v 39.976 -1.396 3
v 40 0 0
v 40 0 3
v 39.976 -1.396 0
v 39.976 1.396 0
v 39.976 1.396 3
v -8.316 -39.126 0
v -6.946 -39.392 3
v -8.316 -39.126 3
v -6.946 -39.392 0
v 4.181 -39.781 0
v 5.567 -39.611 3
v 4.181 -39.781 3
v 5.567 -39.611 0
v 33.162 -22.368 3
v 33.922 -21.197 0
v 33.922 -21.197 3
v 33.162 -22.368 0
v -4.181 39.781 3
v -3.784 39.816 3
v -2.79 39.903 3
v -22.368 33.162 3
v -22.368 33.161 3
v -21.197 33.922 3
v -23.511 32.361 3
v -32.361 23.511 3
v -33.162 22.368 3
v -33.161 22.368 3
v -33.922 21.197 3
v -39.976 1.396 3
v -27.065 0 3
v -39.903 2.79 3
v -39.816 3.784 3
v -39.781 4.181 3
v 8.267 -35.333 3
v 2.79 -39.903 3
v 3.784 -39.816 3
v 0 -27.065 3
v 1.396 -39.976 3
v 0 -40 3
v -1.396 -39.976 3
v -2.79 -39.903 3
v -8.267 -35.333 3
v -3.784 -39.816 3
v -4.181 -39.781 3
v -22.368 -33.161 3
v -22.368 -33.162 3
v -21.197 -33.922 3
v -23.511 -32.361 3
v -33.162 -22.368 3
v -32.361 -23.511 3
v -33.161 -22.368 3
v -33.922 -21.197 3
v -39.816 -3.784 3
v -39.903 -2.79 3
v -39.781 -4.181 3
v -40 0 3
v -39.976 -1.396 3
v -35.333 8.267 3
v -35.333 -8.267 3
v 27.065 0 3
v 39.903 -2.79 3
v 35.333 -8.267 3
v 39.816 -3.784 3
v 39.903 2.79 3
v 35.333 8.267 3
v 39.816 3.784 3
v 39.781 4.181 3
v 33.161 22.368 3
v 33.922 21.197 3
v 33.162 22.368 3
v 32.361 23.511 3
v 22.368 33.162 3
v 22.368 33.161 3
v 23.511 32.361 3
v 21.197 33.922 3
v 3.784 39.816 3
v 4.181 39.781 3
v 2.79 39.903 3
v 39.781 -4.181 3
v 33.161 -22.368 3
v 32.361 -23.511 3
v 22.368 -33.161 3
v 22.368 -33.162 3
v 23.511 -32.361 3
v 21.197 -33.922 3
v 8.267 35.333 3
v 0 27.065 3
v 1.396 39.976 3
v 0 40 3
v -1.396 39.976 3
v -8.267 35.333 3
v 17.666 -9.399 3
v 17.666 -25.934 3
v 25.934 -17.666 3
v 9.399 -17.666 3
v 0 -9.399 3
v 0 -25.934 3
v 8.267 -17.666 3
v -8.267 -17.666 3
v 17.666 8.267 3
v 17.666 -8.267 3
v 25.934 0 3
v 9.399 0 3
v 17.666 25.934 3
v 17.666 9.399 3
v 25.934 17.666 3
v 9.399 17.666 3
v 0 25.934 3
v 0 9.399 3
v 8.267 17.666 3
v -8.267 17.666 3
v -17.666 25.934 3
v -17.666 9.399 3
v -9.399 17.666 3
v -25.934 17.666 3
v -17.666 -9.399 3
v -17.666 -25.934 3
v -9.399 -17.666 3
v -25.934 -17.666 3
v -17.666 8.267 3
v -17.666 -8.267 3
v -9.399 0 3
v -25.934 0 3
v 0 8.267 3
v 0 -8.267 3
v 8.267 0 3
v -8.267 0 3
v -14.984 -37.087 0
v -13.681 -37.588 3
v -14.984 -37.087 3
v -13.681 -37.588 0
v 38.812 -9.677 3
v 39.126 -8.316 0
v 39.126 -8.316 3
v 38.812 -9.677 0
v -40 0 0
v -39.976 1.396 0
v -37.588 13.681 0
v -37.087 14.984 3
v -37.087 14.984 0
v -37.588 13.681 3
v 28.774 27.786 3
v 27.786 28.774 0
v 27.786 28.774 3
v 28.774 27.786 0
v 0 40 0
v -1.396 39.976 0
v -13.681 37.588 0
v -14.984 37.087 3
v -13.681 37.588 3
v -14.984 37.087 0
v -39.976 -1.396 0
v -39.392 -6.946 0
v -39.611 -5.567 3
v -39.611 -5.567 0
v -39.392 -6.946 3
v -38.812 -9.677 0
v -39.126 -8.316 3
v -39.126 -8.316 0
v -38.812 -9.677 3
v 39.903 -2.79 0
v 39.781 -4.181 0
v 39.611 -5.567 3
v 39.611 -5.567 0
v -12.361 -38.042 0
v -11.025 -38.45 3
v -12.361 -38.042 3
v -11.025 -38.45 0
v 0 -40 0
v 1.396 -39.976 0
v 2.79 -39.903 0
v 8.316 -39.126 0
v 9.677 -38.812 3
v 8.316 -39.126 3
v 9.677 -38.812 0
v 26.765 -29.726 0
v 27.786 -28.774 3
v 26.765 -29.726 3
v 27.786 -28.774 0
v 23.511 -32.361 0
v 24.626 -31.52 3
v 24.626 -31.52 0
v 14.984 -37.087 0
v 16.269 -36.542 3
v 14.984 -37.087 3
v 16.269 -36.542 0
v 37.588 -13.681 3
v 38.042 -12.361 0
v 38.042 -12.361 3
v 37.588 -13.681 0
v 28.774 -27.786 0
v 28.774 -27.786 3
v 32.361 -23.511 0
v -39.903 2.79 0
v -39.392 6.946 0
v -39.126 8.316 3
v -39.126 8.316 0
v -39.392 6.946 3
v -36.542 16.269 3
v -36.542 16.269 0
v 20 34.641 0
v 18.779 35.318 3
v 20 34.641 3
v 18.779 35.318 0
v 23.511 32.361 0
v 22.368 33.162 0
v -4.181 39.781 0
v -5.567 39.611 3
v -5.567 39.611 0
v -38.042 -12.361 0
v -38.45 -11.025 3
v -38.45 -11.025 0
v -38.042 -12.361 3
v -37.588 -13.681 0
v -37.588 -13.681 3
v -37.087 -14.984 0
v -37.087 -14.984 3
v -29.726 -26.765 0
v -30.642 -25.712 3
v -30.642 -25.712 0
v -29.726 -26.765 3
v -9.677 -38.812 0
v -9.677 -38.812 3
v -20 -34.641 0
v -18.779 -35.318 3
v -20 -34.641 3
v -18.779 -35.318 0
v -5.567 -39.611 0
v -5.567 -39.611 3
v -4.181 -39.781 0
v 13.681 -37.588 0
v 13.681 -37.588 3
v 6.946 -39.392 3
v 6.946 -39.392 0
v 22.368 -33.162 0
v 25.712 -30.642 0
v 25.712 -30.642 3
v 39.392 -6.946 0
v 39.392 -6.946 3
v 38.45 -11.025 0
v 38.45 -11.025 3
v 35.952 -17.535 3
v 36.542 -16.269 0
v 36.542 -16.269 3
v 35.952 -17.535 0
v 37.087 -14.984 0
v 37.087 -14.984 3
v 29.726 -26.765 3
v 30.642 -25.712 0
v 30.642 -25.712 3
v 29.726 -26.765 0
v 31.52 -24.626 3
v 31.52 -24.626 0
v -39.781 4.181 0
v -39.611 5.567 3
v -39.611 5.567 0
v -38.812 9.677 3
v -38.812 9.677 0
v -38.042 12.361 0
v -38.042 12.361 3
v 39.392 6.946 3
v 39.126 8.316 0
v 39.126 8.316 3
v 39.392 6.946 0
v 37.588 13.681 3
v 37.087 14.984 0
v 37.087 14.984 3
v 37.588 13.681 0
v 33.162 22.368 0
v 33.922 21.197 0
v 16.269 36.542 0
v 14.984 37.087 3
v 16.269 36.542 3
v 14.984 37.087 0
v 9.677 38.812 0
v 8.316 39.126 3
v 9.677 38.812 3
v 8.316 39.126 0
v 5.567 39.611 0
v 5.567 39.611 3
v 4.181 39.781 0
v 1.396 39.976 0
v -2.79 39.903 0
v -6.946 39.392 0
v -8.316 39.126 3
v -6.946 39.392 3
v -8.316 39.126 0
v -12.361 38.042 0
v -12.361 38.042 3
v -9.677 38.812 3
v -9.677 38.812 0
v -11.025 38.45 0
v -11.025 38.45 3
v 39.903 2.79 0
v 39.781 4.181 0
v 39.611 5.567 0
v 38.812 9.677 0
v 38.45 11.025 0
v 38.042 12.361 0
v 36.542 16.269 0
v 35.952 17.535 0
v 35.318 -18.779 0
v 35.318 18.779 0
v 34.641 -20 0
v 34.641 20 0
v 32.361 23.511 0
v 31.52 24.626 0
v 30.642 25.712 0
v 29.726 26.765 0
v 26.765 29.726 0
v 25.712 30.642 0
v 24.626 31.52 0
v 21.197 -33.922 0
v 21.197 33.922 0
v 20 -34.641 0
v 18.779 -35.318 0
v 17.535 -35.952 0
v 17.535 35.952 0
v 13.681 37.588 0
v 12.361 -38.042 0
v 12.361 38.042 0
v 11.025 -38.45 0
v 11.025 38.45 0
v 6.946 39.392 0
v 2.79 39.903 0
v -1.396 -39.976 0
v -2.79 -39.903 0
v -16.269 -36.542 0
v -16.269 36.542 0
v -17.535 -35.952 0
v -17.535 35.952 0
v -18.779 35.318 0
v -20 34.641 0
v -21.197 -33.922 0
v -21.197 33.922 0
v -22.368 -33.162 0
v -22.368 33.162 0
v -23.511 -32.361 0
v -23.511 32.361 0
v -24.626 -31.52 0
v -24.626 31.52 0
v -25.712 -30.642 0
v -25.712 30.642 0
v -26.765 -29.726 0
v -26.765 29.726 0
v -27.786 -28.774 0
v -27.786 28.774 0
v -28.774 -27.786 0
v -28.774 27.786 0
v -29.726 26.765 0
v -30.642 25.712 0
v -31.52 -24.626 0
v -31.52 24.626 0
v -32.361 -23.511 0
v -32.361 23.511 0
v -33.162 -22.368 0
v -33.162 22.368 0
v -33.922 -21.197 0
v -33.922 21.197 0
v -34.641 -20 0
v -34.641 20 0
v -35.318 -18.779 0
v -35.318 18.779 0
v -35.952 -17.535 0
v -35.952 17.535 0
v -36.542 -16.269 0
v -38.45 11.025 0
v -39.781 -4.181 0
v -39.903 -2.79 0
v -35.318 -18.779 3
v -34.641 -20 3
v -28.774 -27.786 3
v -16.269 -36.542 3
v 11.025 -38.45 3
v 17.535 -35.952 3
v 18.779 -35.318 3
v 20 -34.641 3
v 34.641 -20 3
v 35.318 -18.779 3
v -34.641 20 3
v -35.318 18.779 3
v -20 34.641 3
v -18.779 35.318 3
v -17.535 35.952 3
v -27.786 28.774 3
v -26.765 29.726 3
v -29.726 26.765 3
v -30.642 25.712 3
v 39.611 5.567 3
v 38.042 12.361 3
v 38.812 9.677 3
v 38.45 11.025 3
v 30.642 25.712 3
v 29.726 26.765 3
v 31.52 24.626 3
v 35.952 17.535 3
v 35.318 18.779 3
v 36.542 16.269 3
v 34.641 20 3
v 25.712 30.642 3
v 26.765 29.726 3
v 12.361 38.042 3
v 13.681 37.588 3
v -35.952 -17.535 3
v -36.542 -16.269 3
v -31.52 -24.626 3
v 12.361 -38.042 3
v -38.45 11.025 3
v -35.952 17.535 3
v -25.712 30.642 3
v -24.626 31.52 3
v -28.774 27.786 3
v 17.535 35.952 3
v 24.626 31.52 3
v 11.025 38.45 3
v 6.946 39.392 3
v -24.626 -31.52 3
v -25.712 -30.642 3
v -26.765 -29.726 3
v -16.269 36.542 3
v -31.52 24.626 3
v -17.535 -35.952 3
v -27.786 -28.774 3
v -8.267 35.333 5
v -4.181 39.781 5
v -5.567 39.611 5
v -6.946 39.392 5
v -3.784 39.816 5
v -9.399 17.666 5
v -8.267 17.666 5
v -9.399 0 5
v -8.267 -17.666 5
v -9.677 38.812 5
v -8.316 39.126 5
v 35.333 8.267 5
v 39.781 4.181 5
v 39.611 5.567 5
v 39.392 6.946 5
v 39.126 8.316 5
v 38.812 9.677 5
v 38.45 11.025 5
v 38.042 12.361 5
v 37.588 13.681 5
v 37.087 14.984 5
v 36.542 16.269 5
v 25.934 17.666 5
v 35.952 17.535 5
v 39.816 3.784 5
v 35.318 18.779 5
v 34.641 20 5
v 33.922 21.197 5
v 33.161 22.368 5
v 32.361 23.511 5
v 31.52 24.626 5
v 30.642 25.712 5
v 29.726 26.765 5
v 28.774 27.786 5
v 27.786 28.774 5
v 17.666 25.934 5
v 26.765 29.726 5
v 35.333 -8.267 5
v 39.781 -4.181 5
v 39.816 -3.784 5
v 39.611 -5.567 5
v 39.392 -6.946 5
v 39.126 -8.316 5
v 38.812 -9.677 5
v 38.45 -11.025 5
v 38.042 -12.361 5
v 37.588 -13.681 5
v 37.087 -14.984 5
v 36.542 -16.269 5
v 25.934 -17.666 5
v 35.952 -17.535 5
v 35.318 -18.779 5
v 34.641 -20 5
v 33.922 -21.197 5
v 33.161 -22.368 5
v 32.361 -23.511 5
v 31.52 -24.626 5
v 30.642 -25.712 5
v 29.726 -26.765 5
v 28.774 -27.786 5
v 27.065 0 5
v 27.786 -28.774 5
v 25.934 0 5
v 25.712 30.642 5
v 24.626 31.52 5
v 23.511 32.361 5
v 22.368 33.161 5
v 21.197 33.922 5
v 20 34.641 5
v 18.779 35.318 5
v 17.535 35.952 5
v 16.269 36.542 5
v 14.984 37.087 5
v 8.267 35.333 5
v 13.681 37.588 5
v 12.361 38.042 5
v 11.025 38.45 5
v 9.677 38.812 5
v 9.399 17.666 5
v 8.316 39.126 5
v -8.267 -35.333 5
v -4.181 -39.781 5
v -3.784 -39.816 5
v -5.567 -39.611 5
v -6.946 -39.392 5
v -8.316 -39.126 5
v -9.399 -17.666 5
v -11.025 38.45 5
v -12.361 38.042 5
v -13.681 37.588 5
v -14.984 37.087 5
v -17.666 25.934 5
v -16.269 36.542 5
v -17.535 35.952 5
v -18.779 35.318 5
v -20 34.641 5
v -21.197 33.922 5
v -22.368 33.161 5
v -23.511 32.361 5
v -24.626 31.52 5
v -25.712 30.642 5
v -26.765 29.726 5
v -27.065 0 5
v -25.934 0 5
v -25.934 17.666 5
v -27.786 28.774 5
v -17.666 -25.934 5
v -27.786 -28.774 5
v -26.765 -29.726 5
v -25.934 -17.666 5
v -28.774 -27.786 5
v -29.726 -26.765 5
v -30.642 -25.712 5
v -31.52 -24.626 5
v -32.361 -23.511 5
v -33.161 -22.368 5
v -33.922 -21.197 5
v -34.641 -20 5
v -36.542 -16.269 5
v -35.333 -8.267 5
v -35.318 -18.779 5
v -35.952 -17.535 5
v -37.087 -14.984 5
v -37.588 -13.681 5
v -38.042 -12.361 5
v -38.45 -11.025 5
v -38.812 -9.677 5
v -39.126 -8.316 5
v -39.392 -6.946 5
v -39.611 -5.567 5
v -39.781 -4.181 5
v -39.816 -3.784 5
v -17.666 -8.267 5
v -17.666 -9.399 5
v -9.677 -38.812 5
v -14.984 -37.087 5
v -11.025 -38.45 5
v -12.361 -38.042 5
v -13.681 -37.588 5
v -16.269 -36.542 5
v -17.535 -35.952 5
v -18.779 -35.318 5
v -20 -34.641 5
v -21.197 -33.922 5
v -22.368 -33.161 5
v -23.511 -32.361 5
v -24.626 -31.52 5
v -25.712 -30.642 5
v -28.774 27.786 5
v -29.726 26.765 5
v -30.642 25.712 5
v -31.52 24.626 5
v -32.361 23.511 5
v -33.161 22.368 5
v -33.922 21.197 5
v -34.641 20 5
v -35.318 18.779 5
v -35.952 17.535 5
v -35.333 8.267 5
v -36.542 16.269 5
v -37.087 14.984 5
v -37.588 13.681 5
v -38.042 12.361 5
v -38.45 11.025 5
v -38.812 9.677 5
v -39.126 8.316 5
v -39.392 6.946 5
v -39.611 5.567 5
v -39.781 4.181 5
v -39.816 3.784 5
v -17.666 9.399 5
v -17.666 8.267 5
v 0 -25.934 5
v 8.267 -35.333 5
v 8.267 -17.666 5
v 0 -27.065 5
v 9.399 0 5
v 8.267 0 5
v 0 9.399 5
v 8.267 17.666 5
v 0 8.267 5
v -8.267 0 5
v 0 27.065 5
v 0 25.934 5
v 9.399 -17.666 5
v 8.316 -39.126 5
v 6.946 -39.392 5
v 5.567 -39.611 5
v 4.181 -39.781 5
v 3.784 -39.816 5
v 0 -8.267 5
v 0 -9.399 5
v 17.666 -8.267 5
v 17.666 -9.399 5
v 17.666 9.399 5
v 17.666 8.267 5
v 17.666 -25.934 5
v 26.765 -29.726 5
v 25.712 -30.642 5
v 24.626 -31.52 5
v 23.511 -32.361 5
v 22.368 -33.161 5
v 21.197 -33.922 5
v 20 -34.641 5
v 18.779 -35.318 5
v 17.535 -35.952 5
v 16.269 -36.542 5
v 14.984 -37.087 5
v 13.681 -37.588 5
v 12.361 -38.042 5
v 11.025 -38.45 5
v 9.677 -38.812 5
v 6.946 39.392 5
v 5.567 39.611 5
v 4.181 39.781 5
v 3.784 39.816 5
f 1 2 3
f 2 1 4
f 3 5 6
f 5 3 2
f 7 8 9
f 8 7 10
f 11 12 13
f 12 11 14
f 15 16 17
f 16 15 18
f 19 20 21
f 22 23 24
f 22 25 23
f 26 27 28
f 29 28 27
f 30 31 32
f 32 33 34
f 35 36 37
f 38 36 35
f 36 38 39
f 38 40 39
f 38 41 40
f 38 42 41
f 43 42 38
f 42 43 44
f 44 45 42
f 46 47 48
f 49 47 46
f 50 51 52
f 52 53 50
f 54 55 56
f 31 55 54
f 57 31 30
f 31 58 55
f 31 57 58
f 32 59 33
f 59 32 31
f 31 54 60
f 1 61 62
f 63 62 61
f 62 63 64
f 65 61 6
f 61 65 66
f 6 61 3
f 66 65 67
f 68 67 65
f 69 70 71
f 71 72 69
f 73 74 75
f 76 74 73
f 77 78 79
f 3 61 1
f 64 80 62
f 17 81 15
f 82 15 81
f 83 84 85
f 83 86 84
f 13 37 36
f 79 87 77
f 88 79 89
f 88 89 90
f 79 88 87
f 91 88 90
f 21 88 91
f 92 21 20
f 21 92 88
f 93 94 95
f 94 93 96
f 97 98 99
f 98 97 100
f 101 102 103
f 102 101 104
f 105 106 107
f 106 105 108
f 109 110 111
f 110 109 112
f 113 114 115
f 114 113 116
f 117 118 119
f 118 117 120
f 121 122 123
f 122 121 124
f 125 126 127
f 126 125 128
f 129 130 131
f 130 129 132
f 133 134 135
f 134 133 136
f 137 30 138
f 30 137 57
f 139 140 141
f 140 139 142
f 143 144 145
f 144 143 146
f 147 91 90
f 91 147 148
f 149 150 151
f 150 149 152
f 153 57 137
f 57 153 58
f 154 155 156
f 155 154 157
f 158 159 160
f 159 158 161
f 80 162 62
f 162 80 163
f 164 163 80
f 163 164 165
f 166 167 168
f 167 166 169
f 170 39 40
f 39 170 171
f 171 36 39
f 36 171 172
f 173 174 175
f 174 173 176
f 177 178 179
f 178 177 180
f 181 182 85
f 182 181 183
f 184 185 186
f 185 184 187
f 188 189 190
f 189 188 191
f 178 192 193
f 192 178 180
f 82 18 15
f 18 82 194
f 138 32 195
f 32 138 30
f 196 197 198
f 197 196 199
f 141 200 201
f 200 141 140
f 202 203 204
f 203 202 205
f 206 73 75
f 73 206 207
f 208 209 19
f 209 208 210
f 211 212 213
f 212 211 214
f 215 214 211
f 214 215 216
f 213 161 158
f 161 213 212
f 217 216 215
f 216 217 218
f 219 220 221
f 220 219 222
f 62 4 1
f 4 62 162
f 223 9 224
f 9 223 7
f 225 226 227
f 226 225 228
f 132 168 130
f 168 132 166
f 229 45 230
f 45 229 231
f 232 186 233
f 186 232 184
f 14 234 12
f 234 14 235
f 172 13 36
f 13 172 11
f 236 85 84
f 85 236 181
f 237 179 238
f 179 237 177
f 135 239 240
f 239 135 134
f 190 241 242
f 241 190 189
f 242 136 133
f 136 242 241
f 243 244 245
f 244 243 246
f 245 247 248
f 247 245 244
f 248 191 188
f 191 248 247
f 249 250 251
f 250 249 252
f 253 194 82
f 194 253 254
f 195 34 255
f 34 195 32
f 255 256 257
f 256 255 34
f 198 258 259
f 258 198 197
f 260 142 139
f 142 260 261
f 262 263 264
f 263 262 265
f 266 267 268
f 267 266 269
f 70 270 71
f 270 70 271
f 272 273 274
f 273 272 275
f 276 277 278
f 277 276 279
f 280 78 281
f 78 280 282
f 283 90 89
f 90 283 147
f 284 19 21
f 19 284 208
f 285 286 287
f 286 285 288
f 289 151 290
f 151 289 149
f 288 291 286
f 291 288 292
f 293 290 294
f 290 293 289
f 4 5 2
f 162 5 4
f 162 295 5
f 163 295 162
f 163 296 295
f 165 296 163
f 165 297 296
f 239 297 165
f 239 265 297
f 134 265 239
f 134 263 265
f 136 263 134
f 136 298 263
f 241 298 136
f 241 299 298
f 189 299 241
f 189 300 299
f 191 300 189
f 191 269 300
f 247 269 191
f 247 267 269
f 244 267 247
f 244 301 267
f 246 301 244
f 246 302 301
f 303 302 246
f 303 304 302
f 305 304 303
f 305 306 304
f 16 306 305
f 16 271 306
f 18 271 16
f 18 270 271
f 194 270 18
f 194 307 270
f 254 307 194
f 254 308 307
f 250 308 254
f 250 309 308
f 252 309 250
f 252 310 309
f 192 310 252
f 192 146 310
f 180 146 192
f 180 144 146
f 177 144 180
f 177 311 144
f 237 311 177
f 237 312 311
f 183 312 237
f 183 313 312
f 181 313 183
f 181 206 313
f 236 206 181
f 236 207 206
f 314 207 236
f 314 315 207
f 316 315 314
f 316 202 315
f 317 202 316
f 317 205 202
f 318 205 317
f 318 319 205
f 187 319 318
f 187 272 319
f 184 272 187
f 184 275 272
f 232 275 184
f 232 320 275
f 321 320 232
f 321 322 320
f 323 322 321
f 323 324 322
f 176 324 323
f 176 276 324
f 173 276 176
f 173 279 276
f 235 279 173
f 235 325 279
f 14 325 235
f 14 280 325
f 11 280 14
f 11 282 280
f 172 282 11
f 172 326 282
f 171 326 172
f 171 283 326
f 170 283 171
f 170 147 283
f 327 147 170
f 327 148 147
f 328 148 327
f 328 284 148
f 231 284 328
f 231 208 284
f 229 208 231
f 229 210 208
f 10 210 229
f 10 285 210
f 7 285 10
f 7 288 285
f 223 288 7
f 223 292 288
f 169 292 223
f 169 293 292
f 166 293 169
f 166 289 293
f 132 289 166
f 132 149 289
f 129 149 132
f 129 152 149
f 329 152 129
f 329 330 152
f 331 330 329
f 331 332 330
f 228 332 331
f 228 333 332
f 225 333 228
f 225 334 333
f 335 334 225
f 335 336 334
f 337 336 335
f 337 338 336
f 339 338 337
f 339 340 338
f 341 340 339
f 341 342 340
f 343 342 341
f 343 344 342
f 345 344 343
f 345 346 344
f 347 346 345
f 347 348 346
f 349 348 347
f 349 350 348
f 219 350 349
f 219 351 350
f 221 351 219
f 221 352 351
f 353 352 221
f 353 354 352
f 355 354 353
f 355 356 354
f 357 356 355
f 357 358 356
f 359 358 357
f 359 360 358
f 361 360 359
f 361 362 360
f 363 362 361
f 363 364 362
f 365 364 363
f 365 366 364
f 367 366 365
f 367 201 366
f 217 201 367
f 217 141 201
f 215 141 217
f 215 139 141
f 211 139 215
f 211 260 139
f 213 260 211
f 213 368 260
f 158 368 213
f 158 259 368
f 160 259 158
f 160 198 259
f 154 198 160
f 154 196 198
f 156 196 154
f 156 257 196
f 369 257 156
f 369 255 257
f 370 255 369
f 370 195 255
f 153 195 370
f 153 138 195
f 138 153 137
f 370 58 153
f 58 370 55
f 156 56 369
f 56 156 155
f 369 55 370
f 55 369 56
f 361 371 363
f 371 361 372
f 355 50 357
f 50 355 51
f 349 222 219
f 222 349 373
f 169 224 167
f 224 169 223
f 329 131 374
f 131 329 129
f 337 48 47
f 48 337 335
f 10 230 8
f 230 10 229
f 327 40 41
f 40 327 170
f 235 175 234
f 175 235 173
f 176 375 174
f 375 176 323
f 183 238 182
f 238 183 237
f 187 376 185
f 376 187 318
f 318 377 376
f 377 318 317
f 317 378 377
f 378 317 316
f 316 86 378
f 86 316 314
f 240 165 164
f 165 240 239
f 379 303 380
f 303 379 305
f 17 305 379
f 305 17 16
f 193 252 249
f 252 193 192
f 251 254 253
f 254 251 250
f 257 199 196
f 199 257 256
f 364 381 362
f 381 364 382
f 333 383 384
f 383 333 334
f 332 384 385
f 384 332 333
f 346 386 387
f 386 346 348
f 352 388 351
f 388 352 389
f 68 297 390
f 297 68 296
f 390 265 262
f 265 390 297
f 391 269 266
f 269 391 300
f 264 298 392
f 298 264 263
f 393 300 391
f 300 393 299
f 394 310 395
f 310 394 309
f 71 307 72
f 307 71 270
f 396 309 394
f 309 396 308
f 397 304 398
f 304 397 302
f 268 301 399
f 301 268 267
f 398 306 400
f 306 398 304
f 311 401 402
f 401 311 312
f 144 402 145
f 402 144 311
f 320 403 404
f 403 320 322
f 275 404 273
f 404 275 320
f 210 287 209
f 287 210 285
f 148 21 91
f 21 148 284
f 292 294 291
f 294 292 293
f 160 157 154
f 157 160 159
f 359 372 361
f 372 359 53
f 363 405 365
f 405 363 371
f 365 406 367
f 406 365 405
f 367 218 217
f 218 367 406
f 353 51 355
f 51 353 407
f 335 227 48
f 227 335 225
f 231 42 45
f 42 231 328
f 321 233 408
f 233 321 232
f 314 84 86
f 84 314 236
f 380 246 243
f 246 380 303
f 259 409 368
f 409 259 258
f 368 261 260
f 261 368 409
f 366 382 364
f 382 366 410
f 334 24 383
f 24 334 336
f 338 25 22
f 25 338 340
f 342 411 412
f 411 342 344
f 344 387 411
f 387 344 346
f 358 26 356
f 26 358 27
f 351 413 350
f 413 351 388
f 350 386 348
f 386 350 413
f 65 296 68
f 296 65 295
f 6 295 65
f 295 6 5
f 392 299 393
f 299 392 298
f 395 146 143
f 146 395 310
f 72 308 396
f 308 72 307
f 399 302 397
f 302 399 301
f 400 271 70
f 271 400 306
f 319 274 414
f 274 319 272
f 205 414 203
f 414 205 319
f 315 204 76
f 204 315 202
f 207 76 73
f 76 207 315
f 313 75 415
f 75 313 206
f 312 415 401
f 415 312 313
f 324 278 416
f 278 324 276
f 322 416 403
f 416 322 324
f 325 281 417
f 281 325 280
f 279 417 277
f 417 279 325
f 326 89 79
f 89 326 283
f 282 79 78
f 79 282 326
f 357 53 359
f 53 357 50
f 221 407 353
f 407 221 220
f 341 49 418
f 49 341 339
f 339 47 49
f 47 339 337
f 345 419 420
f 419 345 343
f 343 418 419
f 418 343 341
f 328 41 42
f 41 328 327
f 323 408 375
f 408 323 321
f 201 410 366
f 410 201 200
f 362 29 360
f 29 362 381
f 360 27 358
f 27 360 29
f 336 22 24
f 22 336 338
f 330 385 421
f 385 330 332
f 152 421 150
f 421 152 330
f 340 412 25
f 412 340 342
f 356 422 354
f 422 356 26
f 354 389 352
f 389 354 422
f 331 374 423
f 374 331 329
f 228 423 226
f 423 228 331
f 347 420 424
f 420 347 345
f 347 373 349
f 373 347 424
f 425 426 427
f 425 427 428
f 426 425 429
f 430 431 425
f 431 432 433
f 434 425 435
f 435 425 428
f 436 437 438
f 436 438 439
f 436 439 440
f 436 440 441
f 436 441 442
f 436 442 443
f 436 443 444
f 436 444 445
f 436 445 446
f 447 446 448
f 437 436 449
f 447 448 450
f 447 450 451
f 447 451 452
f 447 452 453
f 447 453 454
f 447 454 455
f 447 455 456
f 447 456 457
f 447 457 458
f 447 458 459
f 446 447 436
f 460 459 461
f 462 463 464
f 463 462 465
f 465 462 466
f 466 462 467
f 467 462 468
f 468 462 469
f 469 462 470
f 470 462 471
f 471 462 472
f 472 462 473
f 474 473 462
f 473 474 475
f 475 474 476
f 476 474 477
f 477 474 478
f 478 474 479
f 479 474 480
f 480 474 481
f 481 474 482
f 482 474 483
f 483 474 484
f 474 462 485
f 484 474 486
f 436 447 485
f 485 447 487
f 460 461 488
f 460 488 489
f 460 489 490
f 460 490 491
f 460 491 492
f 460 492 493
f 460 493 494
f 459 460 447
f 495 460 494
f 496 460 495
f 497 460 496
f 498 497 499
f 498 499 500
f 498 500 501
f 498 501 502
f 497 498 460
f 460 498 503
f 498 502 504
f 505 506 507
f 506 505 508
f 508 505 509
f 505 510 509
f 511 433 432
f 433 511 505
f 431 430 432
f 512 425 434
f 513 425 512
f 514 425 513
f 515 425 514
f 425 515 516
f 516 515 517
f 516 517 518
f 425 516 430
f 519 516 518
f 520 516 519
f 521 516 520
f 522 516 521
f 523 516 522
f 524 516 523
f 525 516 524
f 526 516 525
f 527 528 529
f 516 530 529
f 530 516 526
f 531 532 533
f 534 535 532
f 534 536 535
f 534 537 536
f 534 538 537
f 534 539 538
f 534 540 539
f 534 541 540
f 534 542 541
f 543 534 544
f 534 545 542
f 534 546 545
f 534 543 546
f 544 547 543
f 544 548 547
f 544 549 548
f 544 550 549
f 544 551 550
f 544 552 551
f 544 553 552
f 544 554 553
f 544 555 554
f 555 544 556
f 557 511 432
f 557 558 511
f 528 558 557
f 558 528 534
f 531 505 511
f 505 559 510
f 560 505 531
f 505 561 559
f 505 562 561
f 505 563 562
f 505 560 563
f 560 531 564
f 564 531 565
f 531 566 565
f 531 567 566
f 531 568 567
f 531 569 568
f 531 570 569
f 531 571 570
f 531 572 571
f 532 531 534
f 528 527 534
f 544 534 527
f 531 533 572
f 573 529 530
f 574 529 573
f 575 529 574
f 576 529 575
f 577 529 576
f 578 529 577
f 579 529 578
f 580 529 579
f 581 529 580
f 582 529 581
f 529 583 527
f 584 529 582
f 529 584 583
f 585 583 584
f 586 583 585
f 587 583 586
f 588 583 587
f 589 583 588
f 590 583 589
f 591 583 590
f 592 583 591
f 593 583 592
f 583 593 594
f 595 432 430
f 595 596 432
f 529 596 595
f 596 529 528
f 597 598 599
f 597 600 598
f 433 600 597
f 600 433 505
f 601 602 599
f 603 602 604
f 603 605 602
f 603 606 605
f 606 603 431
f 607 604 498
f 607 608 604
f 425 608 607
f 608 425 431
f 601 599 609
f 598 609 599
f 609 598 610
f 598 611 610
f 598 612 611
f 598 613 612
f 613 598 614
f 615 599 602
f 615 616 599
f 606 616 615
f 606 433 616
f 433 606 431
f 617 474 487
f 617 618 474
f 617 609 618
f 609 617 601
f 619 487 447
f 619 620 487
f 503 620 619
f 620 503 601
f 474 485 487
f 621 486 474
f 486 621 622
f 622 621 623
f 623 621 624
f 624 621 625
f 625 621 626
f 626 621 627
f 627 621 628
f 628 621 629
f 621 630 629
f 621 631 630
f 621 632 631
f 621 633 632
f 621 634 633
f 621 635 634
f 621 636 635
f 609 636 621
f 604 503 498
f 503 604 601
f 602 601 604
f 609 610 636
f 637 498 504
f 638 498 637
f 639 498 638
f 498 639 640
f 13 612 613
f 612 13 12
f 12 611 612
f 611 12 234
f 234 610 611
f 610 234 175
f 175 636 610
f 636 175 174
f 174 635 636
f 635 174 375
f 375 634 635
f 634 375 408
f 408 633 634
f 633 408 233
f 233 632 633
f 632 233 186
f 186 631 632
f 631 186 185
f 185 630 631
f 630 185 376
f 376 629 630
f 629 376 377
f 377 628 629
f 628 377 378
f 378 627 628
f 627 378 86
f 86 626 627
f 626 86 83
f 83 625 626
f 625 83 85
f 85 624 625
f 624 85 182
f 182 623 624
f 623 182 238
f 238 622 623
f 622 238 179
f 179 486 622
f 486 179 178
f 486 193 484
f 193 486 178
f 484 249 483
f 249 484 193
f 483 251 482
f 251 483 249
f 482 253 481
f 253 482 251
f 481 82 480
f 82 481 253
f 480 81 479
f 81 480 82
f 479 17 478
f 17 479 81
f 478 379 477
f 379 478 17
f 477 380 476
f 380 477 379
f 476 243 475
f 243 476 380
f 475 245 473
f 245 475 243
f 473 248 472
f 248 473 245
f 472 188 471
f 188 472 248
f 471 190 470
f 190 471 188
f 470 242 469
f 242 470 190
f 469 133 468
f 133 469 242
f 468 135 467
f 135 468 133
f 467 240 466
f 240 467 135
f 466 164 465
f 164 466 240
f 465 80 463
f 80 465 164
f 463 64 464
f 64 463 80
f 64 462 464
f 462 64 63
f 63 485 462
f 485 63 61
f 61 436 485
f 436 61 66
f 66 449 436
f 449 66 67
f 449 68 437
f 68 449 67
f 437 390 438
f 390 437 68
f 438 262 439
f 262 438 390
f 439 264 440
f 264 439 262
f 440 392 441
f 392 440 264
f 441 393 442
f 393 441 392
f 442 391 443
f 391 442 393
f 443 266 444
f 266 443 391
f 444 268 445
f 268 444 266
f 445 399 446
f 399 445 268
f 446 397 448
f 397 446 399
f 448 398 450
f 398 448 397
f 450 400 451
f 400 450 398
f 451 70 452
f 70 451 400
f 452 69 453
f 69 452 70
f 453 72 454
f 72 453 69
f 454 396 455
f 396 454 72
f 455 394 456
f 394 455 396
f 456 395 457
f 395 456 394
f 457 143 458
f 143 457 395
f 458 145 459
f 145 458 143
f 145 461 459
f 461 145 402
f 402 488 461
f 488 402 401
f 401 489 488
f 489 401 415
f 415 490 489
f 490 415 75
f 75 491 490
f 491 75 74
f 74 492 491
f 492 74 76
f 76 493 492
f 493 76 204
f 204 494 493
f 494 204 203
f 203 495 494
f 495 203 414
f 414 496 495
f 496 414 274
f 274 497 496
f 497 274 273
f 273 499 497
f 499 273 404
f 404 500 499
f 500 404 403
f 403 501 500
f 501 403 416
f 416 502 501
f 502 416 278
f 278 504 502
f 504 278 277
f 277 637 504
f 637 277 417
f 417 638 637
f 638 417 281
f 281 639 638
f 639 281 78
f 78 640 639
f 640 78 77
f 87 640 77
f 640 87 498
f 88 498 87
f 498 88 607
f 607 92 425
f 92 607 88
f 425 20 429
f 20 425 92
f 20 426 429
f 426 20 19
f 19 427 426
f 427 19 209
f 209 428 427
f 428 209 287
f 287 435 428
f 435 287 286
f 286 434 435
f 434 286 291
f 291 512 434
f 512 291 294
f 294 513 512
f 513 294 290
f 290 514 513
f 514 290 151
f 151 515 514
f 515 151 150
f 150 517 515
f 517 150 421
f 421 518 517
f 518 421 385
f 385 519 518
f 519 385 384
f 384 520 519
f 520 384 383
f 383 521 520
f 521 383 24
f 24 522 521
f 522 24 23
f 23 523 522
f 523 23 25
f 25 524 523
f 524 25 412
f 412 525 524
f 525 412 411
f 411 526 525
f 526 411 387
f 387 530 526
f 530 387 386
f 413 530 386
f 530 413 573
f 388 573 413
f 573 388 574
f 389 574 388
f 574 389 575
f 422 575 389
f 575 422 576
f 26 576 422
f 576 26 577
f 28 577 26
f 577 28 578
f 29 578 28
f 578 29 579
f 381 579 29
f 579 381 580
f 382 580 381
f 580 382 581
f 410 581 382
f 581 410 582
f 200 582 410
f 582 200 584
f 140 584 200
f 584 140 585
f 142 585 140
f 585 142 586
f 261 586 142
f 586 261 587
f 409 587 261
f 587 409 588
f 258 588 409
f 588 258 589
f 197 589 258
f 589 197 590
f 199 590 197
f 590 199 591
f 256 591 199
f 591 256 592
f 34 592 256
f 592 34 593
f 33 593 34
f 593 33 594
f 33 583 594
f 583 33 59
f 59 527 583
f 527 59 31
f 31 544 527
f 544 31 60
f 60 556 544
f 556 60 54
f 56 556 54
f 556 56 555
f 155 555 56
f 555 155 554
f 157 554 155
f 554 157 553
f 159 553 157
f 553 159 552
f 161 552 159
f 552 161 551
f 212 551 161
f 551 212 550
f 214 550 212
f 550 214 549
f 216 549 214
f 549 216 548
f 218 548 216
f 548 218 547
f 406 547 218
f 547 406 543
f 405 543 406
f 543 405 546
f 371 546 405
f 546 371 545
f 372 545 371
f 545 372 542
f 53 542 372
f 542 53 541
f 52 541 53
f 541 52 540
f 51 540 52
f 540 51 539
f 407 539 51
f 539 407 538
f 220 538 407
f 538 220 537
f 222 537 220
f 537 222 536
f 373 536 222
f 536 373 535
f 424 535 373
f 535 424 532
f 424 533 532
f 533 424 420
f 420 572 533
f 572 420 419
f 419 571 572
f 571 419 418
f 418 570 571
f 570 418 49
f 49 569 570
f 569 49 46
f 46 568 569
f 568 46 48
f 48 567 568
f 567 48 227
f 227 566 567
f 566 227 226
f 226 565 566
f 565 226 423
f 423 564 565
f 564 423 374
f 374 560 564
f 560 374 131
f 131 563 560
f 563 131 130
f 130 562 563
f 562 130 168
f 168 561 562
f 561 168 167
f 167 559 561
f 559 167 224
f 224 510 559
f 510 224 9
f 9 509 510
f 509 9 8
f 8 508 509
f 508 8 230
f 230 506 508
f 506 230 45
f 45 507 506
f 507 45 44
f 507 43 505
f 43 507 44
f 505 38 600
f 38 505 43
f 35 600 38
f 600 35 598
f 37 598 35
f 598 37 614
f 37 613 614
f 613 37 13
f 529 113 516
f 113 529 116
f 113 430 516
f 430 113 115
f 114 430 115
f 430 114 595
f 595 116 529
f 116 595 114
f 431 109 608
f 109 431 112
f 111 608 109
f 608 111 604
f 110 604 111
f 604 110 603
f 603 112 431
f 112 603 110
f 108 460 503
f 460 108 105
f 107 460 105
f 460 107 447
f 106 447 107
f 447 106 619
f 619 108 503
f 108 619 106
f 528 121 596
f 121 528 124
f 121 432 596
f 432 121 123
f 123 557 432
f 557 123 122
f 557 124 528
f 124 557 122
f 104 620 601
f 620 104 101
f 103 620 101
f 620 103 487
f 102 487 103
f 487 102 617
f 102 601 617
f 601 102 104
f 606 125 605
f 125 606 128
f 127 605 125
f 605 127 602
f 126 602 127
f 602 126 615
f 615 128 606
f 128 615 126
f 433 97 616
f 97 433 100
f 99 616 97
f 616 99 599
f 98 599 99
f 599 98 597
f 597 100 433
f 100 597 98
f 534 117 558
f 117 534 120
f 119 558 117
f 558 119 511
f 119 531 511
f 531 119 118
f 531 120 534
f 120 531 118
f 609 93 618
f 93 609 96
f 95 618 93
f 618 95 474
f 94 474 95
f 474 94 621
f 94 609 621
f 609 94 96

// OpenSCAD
// file: bellum_text_traced.scad
// bellum_text_traced.scad
// "Bellum" lettering traced from the source logo image with
// OpenCV (4x cubic upscale, threshold, morphological cleanup,
// approxPolyDP 2px). Coordinates are centered, Y-up, and
// normalized to 100 units of total width.
// Regenerate with scratchpad/trace2_emit.py if retuning.

module bellum_traced_2d() {
    polygon(points=[[-49.89,10.25],[-49.89,9.49],[-49.35,8.94],[-46.95,8.83],[-45.64,7.74],[-45.09,6.11],[-45.42,-2.07],[-45.09,-10.25],[-46.07,-11.56],[-49.24,-11.89],[-49.56,-12.32],[-49.45,-13.30],[-30.59,-13.41],[-28.08,-12.87],[-26.23,-11.45],[-25.03,-9.27],[-24.48,-6.65],[-25.03,-4.80],[-26.01,-3.27],[-29.28,-0.55],[-27.10,2.84],[-27.32,5.78],[-27.97,6.98],[-29.28,8.29],[-31.13,9.38],[-35.50,10.36],[-40.62,-1.42],[-39.97,-0.98],[-35.06,-0.98],[-33.10,-1.31],[-31.68,-1.96],[-30.04,-3.60],[-29.06,-5.89],[-29.06,-7.96],[-29.83,-9.49],[-31.35,-10.91],[-33.86,-11.67],[-37.35,-11.89],[-39.97,-11.34],[-40.95,-10.25],[-41.38,8.40],[-40.84,8.83],[-38.99,9.05],[-35.93,8.83],[-33.32,7.85],[-31.57,6.32],[-30.92,4.91],[-31.24,2.40],[-32.55,0.98],[-33.86,0.33],[-39.31,0.00],[-40.29,0.44],[-40.95,1.53],[-41.49,6.22]], paths=[[0, 1, 2, 3, 4, 5, 6, 7, 8, 9, 10, 11, 12, 13, 14, 15, 16, 17, 18, 19, 20, 21, 22, 23, 24, 25], [26, 27, 28, 29, 30, 31, 32, 33, 34, 35, 36, 37, 38, 39], [40, 41, 42, 43, 44, 45, 46, 47, 48, 49, 50, 51, 52, 53]]);
    polygon(points=[[-21.76,1.53],[-23.28,-0.44],[-23.72,-1.85],[-23.72,-3.82],[-22.96,-6.22],[-21.54,-7.63],[-19.79,-8.40],[-15.43,-8.40],[-13.69,-8.07],[-12.05,-7.09],[-10.09,-5.13],[-10.31,-4.69],[-11.07,-4.58],[-13.36,-6.43],[-15.76,-7.20],[-18.27,-6.54],[-20.34,-4.47],[-20.77,-3.49],[-20.67,-2.62],[-20.01,-2.18],[-18.48,-2.07],[-12.70,-2.40],[-12.05,-1.96],[-12.27,0.00],[-13.90,1.96],[-16.30,2.94],[-19.68,2.62],[-20.34,-0.22],[-19.47,0.98],[-17.61,1.96],[-15.98,1.53],[-14.78,0.00],[-14.99,-0.76],[-15.98,-0.98],[-20.01,-0.98]], paths=[[0, 1, 2, 3, 4, 5, 6, 7, 8, 9, 10, 11, 12, 13, 14, 15, 16, 17, 18, 19, 20, 21, 22, 23, 24, 25, 26], [27, 28, 29, 30, 31, 32, 33, 34]]);
    polygon(points=[[-3.87,12.98],[-4.85,12.87],[-6.60,12.00],[-8.02,10.80],[-7.80,10.25],[-6.49,9.60],[-6.16,8.62],[-6.16,-3.93],[-6.49,-6.54],[-7.36,-7.20],[-8.67,-7.31],[-9.00,-7.74],[-8.89,-8.29],[-8.23,-8.62],[-1.04,-8.40],[-1.04,-7.85],[-1.47,-7.42],[-3.44,-6.98],[-3.98,-5.78],[-3.76,11.01],[-3.44,11.67],[-3.44,12.54]], paths=[[0, 1, 2, 3, 4, 5, 6, 7, 8, 9, 10, 11, 12, 13, 14, 15, 16, 17, 18, 19, 20, 21]]);
    polygon(points=[[5.07,13.52],[4.31,13.41],[0.82,11.56],[-0.16,10.47],[0.27,9.71],[1.47,10.03],[2.13,9.49],[2.34,7.85],[2.24,-5.45],[1.58,-7.20],[-0.05,-7.63],[0.05,-8.18],[0.93,-8.51],[7.25,-8.51],[7.58,-8.18],[6.92,-7.20],[6.05,-7.20],[5.07,-6.32],[5.18,-1.85],[4.85,-0.65],[5.18,0.33],[5.18,11.34],[5.73,12.54],[5.62,13.20]], paths=[[0, 1, 2, 3, 4, 5, 6, 7, 8, 9, 10, 11, 12, 13, 14, 15, 16, 17, 18, 19, 20, 21, 22, 23]]);
    polygon(points=[[9.00,1.64],[9.11,0.87],[10.09,0.76],[10.74,0.00],[11.07,-0.98],[11.07,-5.56],[11.61,-7.31],[12.60,-8.18],[13.36,-8.51],[16.19,-8.51],[18.92,-7.31],[19.47,-7.31],[20.12,-8.18],[20.67,-8.29],[23.83,-8.18],[24.48,-7.74],[24.37,-6.87],[23.17,-6.87],[22.52,-6.32],[22.19,-0.33],[22.63,0.55],[23.61,1.31],[23.72,2.07],[17.83,2.18],[17.72,1.64],[19.25,0.98],[19.68,0.22],[19.68,-4.58],[18.38,-6.32],[16.74,-6.87],[15.65,-6.87],[14.67,-6.43],[13.69,-4.80],[13.69,0.22],[14.67,2.07],[10.41,2.29]], paths=[[0, 1, 2, 3, 4, 5, 6, 7, 8, 9, 10, 11, 12, 13, 14, 15, 16, 17, 18, 19, 20, 21, 22, 23, 24, 25, 26, 27, 28, 29, 30, 31, 32, 33, 34, 35]]);
    polygon(points=[[27.21,1.85],[27.21,1.20],[28.95,0.11],[29.06,-6.22],[28.52,-7.20],[26.55,-7.52],[26.44,-8.29],[26.77,-8.62],[30.59,-8.83],[32.99,-8.62],[33.53,-8.29],[33.10,-7.31],[32.12,-7.20],[31.57,-6.65],[31.57,-0.87],[32.22,0.00],[34.41,0.98],[36.04,0.76],[36.70,0.11],[37.24,-1.53],[37.24,-6.00],[36.91,-6.76],[35.50,-7.74],[35.61,-8.18],[36.48,-8.51],[40.84,-8.51],[41.60,-8.07],[41.60,-7.74],[40.51,-7.20],[39.97,-6.43],[39.97,-1.96],[40.73,-0.55],[42.91,0.98],[44.66,0.65],[45.53,-0.33],[45.75,-1.09],[45.53,-6.43],[44.98,-7.20],[44.00,-7.52],[43.78,-8.07],[44.66,-8.51],[49.45,-8.62],[50.00,-8.18],[49.56,-7.42],[48.80,-7.42],[48.15,-6.76],[48.36,0.00],[47.93,1.31],[46.51,2.62],[43.68,2.94],[41.82,2.07],[40.29,0.87],[39.86,0.87],[38.66,2.51],[37.35,2.94],[34.95,2.51],[32.22,1.20],[31.46,1.42],[31.79,2.62],[31.24,3.05],[29.28,2.94]], paths=[[0, 1, 2, 3, 4, 5, 6, 7, 8, 9, 10, 11, 12, 13, 14, 15, 16, 17, 18, 19, 20, 21, 22, 23, 24, 25, 26, 27, 28, 29, 30, 31, 32, 33, 34, 35, 36, 37, 38, 39, 40, 41, 42, 43, 44, 45, 46, 47, 48, 49, 50, 51, 52, 53, 54, 55, 56, 57, 58, 59, 60]]);
}

bellum_traced_2d();
// file: bellum_badge_004.scad
// bellum_badge_004.scad
// v004: corrected again after a closer look at the photo. The design is a
//   WHITE circle with a 5x5 checkerboard rotated 45 degrees on top: black
//   corner tiles, black center tile, thin white grout, and the diamond's
//   four corners slightly clipped by the circle rim. (v003's full-circle
//   checkerboard misread glare on the button photo as extra tiles.)
//
// Printable parts (print in the named color, glue together):
//   white_body()         white - 3 mm disc + 2 mm top layer with square
//                        pockets; the top layer IS the white circle, white
//                        tiles, and grout, all one solid piece
//   black_tiles()        black - 13 drop-in tiles (4 rim-clipped), flush
//                        with the white top when seated
//   text_plate_black()   black - outline plate behind the letters
//   text_letters_white() white - "Bellum" letters (6 pieces), glue on plate
//
// Everything scales from badge_d; thicknesses and clearance are absolute.
// v002/v003 history: lettering traced from the photo (bellum_text_traced).

$fa = 2;
$fs = 0.4;

// ---- scale ----
badge_d = 80;       // badge diameter: THE scale knob
n       = 5;        // checker tiles per row (odd -> black corners + center)

// ---- thicknesses (absolute mm, independent of badge_d) ----
t_base = 3;         // white disc under the pockets
t_top  = 2;         // pocketed top layer; tiles sit flush (total = 5)
t_text = 1.2;       // each text layer (plate and letters)
clr    = 0.15;      // per-side XY clearance for the drop-in tiles

// ---- proportions (fractions of badge_d, measured from the photo) ----
diag_frac = 1.09;                       // diamond diagonal vs diameter:
                                        // the four corners clip the rim
grout_w   = max(0.008 * badge_d, 0.8);  // white gap between tiles
text_w    = 0.88 * badge_d;             // width of "Bellum"
text_dy   = 0.015 * badge_d;            // text sits a touch above center
outline_w = max(0.015 * badge_d, 1.2);  // black outline around the letters

use <bellum_text_traced.scad>  // lettering traced from the logo photo

// ---- derived ----
R     = badge_d / 2;
sq_f  = diag_frac * badge_d / sqrt(2);  // checker field side
tile  = (sq_f - (n - 1) * grout_w) / n; // tile size
pitch = tile + grout_w;

eps = 0.01;

// ---------------- 2D shapes ----------------

// black tile positions: (i+j) even -> corners and center are black
module black_squares_2d(shrink = 0) {
    rotate(45)
        for (i = [0 : n - 1], j = [0 : n - 1])
            if ((i + j) % 2 == 0)
                translate([(i - (n - 1) / 2) * pitch,
                           (j - (n - 1) / 2) * pitch])
                    square(tile - 2 * shrink, center = true);
}

// traced lettering is normalized to 100 units wide, centered
module text_2d() {
    translate([0, text_dy]) scale(text_w / 100) bellum_traced_2d();
}

// ---------------- printable parts (each flat on Z=0) ----------------

// disc + pocketed top layer, one white piece
module white_body() {
    linear_extrude(t_base) circle(R);
    translate([0, 0, t_base])
        linear_extrude(t_top) difference() {
            circle(R);
            black_squares_2d();  // pockets; rim clips the 4 corner ones
        }
}

// drop-in tiles, rim-clipped ones trimmed slightly inside the disc edge
module black_tiles() {
    intersection() {
        linear_extrude(t_top) black_squares_2d(clr);
        cylinder(h = t_top + eps, r = R - 0.3);
    }
}

module text_plate_black() {
    linear_extrude(t_text) offset(r = outline_w) text_2d();
}

module text_letters_white() {
    linear_extrude(t_text) text_2d();
}

// ---------------- assembled preview ----------------

module assembly() {
    color("white") white_body();
    color([0.15, 0.15, 0.15]) translate([0, 0, t_base]) black_tiles();
    color([0.15, 0.15, 0.15]) translate([0, 0, t_base + t_top])
        text_plate_black();
    color("white") translate([0, 0, t_base + t_top + t_text])
        text_letters_white();
}

assembly();
// main file
// bellum_badge_004_body.scad - print in WHITE
// Disc + pocketed top layer in one piece: white circle, white tiles, grout.
use <bellum_badge_004.scad>
white_body();
